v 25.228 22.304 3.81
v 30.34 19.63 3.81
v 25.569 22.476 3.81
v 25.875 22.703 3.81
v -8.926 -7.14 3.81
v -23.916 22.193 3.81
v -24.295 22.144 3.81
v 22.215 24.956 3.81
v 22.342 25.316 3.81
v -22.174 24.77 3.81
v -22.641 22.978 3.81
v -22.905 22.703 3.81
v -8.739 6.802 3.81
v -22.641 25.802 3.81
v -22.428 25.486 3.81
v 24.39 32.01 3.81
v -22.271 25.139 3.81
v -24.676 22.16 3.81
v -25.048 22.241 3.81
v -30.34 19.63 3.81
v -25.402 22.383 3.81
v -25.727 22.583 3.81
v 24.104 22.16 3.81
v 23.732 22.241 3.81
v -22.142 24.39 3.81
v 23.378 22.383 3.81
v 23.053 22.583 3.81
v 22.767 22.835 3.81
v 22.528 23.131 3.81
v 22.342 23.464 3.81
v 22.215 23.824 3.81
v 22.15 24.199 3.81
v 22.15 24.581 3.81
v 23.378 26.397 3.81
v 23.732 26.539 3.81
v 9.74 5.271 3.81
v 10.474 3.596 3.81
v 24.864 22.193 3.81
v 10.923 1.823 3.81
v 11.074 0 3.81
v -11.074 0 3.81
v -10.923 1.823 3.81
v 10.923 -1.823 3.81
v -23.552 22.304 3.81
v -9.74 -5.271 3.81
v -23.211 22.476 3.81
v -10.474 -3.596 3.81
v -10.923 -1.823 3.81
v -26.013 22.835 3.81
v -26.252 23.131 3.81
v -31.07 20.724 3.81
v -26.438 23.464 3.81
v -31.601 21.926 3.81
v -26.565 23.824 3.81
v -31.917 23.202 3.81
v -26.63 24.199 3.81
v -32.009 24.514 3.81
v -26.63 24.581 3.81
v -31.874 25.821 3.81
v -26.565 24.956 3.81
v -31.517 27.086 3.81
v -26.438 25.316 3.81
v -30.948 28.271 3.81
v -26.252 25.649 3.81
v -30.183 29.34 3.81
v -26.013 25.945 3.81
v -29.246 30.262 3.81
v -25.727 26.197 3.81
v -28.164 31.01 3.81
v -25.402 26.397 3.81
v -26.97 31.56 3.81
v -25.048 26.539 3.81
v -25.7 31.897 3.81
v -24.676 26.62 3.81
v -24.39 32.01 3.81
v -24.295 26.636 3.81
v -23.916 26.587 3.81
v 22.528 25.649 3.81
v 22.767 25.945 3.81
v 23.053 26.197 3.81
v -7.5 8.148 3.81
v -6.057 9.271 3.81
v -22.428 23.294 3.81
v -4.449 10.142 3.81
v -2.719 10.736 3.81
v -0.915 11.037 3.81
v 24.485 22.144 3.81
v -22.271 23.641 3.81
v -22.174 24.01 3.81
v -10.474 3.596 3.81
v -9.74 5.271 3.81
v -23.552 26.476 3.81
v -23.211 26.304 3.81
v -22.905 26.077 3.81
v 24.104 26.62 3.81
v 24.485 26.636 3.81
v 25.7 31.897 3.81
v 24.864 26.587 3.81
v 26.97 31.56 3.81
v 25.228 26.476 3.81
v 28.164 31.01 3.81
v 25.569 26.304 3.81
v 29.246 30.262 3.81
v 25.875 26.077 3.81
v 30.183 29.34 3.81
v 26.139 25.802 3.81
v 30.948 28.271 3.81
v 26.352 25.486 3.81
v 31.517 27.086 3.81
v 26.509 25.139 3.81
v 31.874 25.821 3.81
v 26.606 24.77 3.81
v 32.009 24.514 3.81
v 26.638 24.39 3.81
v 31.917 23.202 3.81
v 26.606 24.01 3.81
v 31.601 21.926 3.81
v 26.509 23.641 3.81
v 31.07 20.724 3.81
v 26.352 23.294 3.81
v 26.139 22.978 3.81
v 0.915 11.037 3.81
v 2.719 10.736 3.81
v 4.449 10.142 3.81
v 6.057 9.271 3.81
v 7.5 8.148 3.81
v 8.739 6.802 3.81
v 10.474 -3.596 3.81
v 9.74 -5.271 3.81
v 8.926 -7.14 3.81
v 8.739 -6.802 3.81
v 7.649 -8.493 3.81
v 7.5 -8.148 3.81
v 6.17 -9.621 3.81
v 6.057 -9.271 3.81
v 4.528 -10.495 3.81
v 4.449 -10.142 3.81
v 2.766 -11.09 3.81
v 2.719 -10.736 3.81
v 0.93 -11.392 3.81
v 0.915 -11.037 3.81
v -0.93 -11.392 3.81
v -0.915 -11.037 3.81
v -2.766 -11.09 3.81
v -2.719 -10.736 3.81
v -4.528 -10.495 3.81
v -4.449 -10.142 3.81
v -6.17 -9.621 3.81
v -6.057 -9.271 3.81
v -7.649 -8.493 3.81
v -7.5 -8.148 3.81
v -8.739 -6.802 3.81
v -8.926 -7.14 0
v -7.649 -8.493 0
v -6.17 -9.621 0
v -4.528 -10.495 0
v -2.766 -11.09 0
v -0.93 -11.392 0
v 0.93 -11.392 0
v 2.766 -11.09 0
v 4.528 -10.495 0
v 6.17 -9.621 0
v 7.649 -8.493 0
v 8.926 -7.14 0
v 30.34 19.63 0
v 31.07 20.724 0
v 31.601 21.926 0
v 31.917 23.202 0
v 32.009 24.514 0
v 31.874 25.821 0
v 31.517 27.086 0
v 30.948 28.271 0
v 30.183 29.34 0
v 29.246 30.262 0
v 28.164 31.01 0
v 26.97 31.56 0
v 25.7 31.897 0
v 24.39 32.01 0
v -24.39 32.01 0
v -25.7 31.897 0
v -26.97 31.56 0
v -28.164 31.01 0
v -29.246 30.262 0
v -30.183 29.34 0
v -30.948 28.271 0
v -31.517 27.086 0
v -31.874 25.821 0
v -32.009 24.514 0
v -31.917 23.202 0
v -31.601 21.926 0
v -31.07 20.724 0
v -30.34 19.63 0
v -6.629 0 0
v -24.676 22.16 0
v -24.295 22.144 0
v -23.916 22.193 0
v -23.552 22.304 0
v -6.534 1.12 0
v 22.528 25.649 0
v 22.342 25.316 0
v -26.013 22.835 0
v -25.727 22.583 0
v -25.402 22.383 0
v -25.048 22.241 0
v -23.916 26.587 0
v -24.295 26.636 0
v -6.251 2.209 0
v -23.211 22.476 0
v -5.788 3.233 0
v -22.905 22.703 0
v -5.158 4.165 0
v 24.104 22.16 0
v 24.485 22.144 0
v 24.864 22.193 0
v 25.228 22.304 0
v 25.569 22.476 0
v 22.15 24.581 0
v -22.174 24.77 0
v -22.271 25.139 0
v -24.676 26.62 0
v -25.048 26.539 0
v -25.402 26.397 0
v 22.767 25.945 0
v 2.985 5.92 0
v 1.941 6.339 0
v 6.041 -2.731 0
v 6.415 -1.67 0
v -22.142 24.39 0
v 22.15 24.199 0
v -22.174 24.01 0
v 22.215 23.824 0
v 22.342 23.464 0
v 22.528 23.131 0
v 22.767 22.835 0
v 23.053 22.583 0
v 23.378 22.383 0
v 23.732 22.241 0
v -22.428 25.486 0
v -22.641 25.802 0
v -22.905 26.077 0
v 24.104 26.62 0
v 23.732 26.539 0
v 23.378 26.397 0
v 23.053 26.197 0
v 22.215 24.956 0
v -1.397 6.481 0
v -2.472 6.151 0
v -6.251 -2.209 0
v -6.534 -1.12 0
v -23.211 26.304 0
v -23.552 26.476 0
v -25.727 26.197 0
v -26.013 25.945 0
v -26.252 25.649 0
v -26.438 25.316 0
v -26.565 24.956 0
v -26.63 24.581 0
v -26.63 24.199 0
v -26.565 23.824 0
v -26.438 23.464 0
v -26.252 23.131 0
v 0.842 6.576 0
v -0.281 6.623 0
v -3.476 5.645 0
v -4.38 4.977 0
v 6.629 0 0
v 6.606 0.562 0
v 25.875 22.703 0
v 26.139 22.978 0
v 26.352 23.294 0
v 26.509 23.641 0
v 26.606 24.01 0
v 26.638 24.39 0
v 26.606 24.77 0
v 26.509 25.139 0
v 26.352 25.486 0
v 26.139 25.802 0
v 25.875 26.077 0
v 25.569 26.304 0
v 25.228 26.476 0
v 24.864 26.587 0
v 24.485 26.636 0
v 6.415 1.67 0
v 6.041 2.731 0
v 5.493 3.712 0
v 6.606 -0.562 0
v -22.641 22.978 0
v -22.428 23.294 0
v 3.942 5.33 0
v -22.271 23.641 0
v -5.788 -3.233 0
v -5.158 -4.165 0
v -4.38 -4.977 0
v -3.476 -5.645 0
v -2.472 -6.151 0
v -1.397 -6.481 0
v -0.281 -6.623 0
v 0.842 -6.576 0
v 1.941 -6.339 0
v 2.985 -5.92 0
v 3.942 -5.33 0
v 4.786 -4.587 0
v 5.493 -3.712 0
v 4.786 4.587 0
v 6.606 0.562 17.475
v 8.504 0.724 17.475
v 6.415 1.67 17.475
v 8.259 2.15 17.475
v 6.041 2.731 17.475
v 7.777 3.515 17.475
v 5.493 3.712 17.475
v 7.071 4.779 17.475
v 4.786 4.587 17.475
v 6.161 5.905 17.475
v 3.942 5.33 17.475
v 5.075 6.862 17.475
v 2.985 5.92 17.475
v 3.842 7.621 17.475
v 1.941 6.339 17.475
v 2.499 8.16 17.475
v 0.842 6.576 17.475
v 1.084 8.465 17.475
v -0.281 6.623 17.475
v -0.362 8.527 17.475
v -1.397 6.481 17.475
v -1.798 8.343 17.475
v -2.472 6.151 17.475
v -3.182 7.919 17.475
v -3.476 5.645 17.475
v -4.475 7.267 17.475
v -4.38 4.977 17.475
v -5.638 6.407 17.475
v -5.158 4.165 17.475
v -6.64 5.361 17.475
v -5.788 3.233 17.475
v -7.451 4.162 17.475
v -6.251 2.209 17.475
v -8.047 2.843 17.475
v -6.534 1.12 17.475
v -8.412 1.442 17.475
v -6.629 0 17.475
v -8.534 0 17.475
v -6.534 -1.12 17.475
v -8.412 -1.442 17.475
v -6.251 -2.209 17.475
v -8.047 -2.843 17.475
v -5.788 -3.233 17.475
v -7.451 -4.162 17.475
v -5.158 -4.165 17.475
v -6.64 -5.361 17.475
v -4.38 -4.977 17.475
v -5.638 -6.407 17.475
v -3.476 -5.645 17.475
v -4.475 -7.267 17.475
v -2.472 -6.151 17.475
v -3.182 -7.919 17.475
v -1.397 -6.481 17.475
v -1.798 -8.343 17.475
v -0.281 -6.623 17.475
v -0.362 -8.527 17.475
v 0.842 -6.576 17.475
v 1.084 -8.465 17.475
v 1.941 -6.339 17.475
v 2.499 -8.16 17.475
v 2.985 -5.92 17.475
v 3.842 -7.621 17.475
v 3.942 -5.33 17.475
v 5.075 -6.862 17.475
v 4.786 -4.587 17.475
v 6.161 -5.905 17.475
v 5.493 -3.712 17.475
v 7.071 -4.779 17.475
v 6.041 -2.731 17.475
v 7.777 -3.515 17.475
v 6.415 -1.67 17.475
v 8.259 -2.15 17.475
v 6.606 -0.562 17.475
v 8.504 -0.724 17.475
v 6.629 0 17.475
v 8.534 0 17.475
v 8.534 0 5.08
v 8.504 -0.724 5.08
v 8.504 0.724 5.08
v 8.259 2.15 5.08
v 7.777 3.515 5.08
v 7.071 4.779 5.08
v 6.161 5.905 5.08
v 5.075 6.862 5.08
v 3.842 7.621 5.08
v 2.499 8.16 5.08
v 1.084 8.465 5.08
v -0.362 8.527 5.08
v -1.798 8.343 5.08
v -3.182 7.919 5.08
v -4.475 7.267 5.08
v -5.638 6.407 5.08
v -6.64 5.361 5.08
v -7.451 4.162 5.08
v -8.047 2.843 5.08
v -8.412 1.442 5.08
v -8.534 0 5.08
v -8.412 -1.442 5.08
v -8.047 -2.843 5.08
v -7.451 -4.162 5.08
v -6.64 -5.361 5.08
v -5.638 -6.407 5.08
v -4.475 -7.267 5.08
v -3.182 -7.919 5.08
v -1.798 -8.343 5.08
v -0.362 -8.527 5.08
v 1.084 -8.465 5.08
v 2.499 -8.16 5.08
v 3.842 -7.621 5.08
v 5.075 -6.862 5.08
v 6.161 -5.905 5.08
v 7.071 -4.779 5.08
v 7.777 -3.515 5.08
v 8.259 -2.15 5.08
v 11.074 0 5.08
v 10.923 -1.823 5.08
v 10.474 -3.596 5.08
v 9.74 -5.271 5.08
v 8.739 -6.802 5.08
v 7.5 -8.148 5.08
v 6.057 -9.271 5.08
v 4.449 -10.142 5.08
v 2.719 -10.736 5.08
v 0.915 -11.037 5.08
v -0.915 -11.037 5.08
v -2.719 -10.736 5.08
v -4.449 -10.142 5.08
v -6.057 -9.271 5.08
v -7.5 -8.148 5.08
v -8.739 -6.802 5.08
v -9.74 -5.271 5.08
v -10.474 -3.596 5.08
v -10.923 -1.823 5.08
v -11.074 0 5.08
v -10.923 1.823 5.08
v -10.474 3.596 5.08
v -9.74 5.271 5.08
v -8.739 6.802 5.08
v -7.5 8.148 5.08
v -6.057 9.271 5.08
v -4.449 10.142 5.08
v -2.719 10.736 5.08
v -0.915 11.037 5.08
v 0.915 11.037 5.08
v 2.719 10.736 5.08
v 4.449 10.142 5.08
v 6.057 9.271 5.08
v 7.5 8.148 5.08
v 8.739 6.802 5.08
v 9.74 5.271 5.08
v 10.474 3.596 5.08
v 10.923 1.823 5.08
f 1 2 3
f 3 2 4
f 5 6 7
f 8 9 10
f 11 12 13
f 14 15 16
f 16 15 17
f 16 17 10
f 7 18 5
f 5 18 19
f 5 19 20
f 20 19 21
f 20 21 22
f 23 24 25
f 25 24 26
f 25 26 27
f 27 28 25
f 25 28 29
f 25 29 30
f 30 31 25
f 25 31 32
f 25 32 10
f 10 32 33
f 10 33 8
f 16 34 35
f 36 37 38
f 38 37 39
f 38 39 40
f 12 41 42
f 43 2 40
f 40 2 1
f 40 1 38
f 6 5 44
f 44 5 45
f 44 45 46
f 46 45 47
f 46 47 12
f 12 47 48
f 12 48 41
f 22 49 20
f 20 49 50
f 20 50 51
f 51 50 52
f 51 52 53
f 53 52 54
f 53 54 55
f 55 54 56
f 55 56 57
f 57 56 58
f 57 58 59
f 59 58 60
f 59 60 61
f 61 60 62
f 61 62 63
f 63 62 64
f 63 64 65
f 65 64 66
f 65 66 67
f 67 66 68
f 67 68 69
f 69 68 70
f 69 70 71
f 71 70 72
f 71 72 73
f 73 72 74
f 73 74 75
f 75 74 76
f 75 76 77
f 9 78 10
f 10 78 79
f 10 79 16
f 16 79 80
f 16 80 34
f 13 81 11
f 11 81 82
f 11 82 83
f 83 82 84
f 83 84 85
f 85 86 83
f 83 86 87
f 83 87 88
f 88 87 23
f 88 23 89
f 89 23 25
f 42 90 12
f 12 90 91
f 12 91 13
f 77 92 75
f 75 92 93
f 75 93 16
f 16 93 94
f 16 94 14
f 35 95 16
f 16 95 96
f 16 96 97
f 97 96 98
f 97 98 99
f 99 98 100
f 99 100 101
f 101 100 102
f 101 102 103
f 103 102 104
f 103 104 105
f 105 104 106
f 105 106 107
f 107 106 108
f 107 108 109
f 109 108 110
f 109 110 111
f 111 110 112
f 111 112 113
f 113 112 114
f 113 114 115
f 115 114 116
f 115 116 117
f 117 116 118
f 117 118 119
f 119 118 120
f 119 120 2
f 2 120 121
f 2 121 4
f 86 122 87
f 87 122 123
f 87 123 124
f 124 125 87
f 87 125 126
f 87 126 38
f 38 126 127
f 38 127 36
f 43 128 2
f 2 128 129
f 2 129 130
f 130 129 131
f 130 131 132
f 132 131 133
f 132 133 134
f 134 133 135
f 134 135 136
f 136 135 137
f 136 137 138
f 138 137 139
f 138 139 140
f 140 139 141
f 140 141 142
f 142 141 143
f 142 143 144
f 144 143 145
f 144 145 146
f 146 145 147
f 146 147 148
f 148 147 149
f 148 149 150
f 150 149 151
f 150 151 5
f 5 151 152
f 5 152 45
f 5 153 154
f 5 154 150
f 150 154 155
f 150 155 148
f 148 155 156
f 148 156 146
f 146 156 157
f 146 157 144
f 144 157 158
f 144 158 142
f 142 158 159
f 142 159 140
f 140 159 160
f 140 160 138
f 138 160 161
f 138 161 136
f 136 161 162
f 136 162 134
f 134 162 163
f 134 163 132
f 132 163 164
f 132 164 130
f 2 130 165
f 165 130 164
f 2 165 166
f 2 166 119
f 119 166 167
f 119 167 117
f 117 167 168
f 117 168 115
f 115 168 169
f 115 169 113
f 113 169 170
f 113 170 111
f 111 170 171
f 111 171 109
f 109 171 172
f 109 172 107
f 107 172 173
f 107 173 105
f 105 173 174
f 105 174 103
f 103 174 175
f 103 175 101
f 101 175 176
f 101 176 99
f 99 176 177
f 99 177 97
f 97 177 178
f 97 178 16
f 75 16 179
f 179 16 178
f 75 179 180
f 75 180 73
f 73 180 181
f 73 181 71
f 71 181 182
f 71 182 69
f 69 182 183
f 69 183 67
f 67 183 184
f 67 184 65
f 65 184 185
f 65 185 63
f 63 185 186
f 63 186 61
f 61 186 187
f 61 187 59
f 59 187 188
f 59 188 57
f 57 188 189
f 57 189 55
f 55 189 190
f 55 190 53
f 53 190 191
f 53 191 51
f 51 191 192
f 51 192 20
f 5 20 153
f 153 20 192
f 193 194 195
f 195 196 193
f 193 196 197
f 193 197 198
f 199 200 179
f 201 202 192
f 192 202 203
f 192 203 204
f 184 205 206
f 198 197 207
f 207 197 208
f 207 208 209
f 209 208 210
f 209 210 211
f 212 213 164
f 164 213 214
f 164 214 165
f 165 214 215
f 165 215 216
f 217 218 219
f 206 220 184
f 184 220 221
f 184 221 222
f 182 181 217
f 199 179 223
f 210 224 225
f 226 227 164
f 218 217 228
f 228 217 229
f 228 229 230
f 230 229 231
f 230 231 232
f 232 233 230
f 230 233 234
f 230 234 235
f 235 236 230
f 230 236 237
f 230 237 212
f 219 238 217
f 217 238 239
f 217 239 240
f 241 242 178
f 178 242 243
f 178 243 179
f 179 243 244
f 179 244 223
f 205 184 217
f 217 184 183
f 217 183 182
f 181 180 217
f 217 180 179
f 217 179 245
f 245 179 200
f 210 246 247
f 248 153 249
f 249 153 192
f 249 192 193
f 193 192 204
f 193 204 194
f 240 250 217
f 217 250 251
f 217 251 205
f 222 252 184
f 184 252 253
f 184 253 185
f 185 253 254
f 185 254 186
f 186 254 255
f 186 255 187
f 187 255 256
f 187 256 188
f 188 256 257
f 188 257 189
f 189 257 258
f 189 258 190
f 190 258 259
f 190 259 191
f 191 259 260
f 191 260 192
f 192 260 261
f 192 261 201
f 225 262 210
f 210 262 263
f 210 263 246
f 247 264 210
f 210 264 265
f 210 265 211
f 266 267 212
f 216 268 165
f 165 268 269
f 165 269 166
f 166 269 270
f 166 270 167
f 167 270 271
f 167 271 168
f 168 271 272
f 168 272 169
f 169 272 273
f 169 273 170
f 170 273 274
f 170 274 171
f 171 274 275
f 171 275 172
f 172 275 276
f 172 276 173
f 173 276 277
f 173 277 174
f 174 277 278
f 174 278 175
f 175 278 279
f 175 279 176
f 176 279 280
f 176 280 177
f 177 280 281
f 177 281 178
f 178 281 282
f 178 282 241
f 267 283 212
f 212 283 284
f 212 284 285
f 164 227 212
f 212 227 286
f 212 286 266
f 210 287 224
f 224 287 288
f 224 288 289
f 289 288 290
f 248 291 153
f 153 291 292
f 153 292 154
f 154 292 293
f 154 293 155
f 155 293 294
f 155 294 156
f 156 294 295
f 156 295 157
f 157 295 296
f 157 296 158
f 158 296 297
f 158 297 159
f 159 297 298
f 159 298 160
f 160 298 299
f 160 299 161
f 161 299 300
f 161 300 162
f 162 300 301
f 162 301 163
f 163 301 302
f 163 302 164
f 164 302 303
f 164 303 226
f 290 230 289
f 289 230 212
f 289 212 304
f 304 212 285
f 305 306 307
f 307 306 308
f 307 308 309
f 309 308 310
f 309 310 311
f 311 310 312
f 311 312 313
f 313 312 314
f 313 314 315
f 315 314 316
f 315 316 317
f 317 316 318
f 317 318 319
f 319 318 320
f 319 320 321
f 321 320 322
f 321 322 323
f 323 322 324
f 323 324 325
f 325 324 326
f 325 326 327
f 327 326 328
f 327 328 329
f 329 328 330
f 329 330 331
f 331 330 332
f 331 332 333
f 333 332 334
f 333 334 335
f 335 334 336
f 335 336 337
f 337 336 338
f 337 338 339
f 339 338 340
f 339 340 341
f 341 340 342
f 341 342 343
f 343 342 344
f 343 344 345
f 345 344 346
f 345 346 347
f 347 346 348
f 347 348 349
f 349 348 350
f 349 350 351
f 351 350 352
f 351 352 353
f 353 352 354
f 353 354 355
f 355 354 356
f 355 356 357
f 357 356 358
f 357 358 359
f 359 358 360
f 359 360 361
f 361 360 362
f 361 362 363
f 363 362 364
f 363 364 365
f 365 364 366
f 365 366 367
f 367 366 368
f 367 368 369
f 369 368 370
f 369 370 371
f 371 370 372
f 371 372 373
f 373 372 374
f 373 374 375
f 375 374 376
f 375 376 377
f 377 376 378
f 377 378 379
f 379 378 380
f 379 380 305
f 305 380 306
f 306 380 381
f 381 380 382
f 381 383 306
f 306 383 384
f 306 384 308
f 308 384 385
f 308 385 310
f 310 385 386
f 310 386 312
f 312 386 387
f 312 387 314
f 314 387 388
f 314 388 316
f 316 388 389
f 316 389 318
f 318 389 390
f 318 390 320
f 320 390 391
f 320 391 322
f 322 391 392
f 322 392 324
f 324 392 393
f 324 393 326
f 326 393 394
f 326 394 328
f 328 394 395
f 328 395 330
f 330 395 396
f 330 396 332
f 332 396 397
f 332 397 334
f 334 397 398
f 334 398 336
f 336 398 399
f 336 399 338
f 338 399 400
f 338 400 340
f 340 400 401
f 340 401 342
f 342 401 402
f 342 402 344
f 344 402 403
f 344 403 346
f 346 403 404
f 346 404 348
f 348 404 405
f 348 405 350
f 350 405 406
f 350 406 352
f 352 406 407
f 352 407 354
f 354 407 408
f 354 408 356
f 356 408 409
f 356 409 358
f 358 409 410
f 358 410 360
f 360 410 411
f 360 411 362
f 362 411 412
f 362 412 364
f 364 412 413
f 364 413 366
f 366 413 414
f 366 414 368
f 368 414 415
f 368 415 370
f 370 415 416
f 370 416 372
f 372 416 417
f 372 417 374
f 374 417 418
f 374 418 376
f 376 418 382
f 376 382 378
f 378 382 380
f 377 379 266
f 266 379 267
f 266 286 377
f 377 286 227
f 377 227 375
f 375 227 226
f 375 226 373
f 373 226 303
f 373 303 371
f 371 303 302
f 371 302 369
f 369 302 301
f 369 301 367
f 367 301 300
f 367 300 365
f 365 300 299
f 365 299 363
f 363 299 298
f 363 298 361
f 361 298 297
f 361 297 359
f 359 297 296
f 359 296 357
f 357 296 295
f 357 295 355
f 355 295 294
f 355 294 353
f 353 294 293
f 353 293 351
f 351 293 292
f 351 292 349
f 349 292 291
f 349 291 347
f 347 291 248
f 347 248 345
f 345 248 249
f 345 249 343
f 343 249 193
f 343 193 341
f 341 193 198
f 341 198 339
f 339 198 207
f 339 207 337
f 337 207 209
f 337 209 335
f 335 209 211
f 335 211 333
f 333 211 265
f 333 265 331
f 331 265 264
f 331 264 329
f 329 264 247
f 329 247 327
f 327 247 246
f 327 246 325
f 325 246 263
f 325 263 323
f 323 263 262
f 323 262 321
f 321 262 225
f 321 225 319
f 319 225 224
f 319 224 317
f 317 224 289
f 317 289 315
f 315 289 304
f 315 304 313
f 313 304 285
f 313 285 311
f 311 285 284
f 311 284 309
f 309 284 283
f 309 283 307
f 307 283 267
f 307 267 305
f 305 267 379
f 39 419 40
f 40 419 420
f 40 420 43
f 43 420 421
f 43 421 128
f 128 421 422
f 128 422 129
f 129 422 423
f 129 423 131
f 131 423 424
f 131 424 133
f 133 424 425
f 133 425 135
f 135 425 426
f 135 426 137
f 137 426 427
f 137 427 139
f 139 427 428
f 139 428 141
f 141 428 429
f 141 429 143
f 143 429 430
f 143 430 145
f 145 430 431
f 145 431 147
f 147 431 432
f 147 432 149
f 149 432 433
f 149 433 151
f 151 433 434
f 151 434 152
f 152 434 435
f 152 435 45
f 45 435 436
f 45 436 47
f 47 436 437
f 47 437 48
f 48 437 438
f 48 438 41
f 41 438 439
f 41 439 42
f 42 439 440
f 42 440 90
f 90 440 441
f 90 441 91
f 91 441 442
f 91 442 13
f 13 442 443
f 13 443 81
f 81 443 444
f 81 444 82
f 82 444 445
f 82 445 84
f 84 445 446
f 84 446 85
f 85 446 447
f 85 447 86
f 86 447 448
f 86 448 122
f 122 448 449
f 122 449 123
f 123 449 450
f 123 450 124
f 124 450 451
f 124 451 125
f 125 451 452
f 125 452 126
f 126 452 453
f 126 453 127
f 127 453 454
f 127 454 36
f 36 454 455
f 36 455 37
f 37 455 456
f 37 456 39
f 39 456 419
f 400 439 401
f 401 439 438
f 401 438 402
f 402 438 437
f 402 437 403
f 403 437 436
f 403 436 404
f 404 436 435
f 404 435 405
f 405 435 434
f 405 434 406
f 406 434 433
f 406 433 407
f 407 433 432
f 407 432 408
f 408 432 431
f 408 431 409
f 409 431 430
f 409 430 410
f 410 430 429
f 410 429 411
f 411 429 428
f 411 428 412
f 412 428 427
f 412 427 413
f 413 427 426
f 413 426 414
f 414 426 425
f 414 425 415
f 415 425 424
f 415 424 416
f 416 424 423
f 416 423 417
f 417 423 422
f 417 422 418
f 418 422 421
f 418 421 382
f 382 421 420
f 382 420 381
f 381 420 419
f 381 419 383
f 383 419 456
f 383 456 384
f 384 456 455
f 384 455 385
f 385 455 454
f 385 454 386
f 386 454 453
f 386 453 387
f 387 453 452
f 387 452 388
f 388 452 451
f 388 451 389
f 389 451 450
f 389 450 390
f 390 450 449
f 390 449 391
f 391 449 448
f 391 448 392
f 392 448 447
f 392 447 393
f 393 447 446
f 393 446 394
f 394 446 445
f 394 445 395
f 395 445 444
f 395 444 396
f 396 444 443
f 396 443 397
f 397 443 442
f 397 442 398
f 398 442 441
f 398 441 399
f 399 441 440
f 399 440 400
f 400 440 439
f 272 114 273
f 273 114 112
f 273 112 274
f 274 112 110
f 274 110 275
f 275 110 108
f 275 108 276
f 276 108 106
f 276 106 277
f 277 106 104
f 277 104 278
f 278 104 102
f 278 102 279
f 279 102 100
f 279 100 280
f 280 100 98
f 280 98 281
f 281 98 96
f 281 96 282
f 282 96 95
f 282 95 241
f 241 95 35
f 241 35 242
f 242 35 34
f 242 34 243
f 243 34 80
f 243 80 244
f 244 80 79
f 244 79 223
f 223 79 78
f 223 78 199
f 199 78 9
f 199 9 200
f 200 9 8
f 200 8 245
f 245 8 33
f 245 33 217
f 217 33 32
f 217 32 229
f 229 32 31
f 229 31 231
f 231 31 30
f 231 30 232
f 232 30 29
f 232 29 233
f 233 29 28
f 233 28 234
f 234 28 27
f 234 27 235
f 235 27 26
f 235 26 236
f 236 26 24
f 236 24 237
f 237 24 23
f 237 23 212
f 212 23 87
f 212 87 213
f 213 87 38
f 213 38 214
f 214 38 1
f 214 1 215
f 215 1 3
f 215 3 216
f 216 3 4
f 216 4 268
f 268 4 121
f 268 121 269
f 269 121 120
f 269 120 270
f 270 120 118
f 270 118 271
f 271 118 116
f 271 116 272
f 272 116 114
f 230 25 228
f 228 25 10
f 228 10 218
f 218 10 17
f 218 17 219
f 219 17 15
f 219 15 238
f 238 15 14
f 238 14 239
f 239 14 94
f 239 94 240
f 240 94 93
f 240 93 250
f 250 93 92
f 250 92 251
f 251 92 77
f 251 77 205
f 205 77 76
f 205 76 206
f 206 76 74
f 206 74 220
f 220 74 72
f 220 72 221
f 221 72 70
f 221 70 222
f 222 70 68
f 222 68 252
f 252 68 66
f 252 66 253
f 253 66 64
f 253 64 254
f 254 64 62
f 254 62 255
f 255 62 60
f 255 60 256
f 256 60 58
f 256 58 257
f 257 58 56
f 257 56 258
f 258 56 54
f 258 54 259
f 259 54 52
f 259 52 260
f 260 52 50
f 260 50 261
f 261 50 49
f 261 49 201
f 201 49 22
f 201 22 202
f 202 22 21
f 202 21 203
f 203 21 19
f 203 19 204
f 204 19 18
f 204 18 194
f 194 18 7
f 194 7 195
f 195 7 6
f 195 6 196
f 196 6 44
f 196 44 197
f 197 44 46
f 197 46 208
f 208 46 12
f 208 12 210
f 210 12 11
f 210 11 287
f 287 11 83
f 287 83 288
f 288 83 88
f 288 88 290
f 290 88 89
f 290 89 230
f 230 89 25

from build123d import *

# Parameters (mm, degrees)
BOSS_EXTRUDE1_DEPTH      = 3.81
BOSS_EXTRUDE2_START      = -3.81
SKETCH2_R                = 8.5344
SKETCH2_R_2              = 6.6294
BOSS_EXTRUDE2_DEPTH      = 17.4752
SKETCH4_R                = 6.6294
CUT_EXTRUDE2_DEPTH       = 4.81
SKETCH5_R                = 11.0744
SKETCH5_R_2              = 8.5344
BOSS_EXTRUDE3_DEPTH      = 1.27
BOSS_EXTRUDE3_DEPTH_BACK = 3.81
F_8_CLEARANCE_HOLE1_D    = 4.4958


with BuildPart() as part:
    # Sketch1 → Boss-Extrude1 (new body)
    with BuildSketch(Plane.XY):
        with BuildLine():
            Line((-24.39, 32.01), (24.39, 32.01))
            ThreePointArc((24.39, 32.01), (31.257886274, 27.690990477), (30.340348343, 19.629983761))
            Line((30.340348343, 19.629983761), (8.925522514, -7.140024359))
            ThreePointArc((8.925522514, -7.140024359), (0, -11.43), (-8.925522514, -7.140024359))
            Line((-8.925522514, -7.140024359), (-30.340348343, 19.629983761))
            ThreePointArc((-30.340348343, 19.629983761), (-31.257886274, 27.690990477), (-24.39, 32.01))
        make_face()
    extrude(amount=BOSS_EXTRUDE1_DEPTH)

    # Sketch2 → Boss-Extrude2 (add)
    with BuildSketch(Plane.XY.offset(3.81).offset(BOSS_EXTRUDE2_START)):
        Circle(SKETCH2_R)
        Circle(SKETCH2_R_2, mode=Mode.SUBTRACT)
    extrude(amount=BOSS_EXTRUDE2_DEPTH)

    # Sketch4 → Cut-Extrude2 (cut, through all)
    with BuildSketch(Plane.XY.offset(3.81)):
        Circle(SKETCH4_R)
    extrude(amount=-CUT_EXTRUDE2_DEPTH, mode=Mode.SUBTRACT)

    # Sketch5 → Boss-Extrude3 (add, two sides)
    with BuildSketch(Plane.XY.offset(3.81)) as boss_extrude3_sk:
        Circle(SKETCH5_R)
        Circle(SKETCH5_R_2, mode=Mode.SUBTRACT)
    extrude(amount=BOSS_EXTRUDE3_DEPTH)
    extrude(boss_extrude3_sk.sketch, amount=-BOSS_EXTRUDE3_DEPTH_BACK)

    # #8 Clearance Hole1 (through all)
    with Locations(Plane.XY.offset(3.81)):
        with Locations((-24.39, 24.39), (24.39, 24.39)):
            Hole(F_8_CLEARANCE_HOLE1_D / 2)


solid = part.part
